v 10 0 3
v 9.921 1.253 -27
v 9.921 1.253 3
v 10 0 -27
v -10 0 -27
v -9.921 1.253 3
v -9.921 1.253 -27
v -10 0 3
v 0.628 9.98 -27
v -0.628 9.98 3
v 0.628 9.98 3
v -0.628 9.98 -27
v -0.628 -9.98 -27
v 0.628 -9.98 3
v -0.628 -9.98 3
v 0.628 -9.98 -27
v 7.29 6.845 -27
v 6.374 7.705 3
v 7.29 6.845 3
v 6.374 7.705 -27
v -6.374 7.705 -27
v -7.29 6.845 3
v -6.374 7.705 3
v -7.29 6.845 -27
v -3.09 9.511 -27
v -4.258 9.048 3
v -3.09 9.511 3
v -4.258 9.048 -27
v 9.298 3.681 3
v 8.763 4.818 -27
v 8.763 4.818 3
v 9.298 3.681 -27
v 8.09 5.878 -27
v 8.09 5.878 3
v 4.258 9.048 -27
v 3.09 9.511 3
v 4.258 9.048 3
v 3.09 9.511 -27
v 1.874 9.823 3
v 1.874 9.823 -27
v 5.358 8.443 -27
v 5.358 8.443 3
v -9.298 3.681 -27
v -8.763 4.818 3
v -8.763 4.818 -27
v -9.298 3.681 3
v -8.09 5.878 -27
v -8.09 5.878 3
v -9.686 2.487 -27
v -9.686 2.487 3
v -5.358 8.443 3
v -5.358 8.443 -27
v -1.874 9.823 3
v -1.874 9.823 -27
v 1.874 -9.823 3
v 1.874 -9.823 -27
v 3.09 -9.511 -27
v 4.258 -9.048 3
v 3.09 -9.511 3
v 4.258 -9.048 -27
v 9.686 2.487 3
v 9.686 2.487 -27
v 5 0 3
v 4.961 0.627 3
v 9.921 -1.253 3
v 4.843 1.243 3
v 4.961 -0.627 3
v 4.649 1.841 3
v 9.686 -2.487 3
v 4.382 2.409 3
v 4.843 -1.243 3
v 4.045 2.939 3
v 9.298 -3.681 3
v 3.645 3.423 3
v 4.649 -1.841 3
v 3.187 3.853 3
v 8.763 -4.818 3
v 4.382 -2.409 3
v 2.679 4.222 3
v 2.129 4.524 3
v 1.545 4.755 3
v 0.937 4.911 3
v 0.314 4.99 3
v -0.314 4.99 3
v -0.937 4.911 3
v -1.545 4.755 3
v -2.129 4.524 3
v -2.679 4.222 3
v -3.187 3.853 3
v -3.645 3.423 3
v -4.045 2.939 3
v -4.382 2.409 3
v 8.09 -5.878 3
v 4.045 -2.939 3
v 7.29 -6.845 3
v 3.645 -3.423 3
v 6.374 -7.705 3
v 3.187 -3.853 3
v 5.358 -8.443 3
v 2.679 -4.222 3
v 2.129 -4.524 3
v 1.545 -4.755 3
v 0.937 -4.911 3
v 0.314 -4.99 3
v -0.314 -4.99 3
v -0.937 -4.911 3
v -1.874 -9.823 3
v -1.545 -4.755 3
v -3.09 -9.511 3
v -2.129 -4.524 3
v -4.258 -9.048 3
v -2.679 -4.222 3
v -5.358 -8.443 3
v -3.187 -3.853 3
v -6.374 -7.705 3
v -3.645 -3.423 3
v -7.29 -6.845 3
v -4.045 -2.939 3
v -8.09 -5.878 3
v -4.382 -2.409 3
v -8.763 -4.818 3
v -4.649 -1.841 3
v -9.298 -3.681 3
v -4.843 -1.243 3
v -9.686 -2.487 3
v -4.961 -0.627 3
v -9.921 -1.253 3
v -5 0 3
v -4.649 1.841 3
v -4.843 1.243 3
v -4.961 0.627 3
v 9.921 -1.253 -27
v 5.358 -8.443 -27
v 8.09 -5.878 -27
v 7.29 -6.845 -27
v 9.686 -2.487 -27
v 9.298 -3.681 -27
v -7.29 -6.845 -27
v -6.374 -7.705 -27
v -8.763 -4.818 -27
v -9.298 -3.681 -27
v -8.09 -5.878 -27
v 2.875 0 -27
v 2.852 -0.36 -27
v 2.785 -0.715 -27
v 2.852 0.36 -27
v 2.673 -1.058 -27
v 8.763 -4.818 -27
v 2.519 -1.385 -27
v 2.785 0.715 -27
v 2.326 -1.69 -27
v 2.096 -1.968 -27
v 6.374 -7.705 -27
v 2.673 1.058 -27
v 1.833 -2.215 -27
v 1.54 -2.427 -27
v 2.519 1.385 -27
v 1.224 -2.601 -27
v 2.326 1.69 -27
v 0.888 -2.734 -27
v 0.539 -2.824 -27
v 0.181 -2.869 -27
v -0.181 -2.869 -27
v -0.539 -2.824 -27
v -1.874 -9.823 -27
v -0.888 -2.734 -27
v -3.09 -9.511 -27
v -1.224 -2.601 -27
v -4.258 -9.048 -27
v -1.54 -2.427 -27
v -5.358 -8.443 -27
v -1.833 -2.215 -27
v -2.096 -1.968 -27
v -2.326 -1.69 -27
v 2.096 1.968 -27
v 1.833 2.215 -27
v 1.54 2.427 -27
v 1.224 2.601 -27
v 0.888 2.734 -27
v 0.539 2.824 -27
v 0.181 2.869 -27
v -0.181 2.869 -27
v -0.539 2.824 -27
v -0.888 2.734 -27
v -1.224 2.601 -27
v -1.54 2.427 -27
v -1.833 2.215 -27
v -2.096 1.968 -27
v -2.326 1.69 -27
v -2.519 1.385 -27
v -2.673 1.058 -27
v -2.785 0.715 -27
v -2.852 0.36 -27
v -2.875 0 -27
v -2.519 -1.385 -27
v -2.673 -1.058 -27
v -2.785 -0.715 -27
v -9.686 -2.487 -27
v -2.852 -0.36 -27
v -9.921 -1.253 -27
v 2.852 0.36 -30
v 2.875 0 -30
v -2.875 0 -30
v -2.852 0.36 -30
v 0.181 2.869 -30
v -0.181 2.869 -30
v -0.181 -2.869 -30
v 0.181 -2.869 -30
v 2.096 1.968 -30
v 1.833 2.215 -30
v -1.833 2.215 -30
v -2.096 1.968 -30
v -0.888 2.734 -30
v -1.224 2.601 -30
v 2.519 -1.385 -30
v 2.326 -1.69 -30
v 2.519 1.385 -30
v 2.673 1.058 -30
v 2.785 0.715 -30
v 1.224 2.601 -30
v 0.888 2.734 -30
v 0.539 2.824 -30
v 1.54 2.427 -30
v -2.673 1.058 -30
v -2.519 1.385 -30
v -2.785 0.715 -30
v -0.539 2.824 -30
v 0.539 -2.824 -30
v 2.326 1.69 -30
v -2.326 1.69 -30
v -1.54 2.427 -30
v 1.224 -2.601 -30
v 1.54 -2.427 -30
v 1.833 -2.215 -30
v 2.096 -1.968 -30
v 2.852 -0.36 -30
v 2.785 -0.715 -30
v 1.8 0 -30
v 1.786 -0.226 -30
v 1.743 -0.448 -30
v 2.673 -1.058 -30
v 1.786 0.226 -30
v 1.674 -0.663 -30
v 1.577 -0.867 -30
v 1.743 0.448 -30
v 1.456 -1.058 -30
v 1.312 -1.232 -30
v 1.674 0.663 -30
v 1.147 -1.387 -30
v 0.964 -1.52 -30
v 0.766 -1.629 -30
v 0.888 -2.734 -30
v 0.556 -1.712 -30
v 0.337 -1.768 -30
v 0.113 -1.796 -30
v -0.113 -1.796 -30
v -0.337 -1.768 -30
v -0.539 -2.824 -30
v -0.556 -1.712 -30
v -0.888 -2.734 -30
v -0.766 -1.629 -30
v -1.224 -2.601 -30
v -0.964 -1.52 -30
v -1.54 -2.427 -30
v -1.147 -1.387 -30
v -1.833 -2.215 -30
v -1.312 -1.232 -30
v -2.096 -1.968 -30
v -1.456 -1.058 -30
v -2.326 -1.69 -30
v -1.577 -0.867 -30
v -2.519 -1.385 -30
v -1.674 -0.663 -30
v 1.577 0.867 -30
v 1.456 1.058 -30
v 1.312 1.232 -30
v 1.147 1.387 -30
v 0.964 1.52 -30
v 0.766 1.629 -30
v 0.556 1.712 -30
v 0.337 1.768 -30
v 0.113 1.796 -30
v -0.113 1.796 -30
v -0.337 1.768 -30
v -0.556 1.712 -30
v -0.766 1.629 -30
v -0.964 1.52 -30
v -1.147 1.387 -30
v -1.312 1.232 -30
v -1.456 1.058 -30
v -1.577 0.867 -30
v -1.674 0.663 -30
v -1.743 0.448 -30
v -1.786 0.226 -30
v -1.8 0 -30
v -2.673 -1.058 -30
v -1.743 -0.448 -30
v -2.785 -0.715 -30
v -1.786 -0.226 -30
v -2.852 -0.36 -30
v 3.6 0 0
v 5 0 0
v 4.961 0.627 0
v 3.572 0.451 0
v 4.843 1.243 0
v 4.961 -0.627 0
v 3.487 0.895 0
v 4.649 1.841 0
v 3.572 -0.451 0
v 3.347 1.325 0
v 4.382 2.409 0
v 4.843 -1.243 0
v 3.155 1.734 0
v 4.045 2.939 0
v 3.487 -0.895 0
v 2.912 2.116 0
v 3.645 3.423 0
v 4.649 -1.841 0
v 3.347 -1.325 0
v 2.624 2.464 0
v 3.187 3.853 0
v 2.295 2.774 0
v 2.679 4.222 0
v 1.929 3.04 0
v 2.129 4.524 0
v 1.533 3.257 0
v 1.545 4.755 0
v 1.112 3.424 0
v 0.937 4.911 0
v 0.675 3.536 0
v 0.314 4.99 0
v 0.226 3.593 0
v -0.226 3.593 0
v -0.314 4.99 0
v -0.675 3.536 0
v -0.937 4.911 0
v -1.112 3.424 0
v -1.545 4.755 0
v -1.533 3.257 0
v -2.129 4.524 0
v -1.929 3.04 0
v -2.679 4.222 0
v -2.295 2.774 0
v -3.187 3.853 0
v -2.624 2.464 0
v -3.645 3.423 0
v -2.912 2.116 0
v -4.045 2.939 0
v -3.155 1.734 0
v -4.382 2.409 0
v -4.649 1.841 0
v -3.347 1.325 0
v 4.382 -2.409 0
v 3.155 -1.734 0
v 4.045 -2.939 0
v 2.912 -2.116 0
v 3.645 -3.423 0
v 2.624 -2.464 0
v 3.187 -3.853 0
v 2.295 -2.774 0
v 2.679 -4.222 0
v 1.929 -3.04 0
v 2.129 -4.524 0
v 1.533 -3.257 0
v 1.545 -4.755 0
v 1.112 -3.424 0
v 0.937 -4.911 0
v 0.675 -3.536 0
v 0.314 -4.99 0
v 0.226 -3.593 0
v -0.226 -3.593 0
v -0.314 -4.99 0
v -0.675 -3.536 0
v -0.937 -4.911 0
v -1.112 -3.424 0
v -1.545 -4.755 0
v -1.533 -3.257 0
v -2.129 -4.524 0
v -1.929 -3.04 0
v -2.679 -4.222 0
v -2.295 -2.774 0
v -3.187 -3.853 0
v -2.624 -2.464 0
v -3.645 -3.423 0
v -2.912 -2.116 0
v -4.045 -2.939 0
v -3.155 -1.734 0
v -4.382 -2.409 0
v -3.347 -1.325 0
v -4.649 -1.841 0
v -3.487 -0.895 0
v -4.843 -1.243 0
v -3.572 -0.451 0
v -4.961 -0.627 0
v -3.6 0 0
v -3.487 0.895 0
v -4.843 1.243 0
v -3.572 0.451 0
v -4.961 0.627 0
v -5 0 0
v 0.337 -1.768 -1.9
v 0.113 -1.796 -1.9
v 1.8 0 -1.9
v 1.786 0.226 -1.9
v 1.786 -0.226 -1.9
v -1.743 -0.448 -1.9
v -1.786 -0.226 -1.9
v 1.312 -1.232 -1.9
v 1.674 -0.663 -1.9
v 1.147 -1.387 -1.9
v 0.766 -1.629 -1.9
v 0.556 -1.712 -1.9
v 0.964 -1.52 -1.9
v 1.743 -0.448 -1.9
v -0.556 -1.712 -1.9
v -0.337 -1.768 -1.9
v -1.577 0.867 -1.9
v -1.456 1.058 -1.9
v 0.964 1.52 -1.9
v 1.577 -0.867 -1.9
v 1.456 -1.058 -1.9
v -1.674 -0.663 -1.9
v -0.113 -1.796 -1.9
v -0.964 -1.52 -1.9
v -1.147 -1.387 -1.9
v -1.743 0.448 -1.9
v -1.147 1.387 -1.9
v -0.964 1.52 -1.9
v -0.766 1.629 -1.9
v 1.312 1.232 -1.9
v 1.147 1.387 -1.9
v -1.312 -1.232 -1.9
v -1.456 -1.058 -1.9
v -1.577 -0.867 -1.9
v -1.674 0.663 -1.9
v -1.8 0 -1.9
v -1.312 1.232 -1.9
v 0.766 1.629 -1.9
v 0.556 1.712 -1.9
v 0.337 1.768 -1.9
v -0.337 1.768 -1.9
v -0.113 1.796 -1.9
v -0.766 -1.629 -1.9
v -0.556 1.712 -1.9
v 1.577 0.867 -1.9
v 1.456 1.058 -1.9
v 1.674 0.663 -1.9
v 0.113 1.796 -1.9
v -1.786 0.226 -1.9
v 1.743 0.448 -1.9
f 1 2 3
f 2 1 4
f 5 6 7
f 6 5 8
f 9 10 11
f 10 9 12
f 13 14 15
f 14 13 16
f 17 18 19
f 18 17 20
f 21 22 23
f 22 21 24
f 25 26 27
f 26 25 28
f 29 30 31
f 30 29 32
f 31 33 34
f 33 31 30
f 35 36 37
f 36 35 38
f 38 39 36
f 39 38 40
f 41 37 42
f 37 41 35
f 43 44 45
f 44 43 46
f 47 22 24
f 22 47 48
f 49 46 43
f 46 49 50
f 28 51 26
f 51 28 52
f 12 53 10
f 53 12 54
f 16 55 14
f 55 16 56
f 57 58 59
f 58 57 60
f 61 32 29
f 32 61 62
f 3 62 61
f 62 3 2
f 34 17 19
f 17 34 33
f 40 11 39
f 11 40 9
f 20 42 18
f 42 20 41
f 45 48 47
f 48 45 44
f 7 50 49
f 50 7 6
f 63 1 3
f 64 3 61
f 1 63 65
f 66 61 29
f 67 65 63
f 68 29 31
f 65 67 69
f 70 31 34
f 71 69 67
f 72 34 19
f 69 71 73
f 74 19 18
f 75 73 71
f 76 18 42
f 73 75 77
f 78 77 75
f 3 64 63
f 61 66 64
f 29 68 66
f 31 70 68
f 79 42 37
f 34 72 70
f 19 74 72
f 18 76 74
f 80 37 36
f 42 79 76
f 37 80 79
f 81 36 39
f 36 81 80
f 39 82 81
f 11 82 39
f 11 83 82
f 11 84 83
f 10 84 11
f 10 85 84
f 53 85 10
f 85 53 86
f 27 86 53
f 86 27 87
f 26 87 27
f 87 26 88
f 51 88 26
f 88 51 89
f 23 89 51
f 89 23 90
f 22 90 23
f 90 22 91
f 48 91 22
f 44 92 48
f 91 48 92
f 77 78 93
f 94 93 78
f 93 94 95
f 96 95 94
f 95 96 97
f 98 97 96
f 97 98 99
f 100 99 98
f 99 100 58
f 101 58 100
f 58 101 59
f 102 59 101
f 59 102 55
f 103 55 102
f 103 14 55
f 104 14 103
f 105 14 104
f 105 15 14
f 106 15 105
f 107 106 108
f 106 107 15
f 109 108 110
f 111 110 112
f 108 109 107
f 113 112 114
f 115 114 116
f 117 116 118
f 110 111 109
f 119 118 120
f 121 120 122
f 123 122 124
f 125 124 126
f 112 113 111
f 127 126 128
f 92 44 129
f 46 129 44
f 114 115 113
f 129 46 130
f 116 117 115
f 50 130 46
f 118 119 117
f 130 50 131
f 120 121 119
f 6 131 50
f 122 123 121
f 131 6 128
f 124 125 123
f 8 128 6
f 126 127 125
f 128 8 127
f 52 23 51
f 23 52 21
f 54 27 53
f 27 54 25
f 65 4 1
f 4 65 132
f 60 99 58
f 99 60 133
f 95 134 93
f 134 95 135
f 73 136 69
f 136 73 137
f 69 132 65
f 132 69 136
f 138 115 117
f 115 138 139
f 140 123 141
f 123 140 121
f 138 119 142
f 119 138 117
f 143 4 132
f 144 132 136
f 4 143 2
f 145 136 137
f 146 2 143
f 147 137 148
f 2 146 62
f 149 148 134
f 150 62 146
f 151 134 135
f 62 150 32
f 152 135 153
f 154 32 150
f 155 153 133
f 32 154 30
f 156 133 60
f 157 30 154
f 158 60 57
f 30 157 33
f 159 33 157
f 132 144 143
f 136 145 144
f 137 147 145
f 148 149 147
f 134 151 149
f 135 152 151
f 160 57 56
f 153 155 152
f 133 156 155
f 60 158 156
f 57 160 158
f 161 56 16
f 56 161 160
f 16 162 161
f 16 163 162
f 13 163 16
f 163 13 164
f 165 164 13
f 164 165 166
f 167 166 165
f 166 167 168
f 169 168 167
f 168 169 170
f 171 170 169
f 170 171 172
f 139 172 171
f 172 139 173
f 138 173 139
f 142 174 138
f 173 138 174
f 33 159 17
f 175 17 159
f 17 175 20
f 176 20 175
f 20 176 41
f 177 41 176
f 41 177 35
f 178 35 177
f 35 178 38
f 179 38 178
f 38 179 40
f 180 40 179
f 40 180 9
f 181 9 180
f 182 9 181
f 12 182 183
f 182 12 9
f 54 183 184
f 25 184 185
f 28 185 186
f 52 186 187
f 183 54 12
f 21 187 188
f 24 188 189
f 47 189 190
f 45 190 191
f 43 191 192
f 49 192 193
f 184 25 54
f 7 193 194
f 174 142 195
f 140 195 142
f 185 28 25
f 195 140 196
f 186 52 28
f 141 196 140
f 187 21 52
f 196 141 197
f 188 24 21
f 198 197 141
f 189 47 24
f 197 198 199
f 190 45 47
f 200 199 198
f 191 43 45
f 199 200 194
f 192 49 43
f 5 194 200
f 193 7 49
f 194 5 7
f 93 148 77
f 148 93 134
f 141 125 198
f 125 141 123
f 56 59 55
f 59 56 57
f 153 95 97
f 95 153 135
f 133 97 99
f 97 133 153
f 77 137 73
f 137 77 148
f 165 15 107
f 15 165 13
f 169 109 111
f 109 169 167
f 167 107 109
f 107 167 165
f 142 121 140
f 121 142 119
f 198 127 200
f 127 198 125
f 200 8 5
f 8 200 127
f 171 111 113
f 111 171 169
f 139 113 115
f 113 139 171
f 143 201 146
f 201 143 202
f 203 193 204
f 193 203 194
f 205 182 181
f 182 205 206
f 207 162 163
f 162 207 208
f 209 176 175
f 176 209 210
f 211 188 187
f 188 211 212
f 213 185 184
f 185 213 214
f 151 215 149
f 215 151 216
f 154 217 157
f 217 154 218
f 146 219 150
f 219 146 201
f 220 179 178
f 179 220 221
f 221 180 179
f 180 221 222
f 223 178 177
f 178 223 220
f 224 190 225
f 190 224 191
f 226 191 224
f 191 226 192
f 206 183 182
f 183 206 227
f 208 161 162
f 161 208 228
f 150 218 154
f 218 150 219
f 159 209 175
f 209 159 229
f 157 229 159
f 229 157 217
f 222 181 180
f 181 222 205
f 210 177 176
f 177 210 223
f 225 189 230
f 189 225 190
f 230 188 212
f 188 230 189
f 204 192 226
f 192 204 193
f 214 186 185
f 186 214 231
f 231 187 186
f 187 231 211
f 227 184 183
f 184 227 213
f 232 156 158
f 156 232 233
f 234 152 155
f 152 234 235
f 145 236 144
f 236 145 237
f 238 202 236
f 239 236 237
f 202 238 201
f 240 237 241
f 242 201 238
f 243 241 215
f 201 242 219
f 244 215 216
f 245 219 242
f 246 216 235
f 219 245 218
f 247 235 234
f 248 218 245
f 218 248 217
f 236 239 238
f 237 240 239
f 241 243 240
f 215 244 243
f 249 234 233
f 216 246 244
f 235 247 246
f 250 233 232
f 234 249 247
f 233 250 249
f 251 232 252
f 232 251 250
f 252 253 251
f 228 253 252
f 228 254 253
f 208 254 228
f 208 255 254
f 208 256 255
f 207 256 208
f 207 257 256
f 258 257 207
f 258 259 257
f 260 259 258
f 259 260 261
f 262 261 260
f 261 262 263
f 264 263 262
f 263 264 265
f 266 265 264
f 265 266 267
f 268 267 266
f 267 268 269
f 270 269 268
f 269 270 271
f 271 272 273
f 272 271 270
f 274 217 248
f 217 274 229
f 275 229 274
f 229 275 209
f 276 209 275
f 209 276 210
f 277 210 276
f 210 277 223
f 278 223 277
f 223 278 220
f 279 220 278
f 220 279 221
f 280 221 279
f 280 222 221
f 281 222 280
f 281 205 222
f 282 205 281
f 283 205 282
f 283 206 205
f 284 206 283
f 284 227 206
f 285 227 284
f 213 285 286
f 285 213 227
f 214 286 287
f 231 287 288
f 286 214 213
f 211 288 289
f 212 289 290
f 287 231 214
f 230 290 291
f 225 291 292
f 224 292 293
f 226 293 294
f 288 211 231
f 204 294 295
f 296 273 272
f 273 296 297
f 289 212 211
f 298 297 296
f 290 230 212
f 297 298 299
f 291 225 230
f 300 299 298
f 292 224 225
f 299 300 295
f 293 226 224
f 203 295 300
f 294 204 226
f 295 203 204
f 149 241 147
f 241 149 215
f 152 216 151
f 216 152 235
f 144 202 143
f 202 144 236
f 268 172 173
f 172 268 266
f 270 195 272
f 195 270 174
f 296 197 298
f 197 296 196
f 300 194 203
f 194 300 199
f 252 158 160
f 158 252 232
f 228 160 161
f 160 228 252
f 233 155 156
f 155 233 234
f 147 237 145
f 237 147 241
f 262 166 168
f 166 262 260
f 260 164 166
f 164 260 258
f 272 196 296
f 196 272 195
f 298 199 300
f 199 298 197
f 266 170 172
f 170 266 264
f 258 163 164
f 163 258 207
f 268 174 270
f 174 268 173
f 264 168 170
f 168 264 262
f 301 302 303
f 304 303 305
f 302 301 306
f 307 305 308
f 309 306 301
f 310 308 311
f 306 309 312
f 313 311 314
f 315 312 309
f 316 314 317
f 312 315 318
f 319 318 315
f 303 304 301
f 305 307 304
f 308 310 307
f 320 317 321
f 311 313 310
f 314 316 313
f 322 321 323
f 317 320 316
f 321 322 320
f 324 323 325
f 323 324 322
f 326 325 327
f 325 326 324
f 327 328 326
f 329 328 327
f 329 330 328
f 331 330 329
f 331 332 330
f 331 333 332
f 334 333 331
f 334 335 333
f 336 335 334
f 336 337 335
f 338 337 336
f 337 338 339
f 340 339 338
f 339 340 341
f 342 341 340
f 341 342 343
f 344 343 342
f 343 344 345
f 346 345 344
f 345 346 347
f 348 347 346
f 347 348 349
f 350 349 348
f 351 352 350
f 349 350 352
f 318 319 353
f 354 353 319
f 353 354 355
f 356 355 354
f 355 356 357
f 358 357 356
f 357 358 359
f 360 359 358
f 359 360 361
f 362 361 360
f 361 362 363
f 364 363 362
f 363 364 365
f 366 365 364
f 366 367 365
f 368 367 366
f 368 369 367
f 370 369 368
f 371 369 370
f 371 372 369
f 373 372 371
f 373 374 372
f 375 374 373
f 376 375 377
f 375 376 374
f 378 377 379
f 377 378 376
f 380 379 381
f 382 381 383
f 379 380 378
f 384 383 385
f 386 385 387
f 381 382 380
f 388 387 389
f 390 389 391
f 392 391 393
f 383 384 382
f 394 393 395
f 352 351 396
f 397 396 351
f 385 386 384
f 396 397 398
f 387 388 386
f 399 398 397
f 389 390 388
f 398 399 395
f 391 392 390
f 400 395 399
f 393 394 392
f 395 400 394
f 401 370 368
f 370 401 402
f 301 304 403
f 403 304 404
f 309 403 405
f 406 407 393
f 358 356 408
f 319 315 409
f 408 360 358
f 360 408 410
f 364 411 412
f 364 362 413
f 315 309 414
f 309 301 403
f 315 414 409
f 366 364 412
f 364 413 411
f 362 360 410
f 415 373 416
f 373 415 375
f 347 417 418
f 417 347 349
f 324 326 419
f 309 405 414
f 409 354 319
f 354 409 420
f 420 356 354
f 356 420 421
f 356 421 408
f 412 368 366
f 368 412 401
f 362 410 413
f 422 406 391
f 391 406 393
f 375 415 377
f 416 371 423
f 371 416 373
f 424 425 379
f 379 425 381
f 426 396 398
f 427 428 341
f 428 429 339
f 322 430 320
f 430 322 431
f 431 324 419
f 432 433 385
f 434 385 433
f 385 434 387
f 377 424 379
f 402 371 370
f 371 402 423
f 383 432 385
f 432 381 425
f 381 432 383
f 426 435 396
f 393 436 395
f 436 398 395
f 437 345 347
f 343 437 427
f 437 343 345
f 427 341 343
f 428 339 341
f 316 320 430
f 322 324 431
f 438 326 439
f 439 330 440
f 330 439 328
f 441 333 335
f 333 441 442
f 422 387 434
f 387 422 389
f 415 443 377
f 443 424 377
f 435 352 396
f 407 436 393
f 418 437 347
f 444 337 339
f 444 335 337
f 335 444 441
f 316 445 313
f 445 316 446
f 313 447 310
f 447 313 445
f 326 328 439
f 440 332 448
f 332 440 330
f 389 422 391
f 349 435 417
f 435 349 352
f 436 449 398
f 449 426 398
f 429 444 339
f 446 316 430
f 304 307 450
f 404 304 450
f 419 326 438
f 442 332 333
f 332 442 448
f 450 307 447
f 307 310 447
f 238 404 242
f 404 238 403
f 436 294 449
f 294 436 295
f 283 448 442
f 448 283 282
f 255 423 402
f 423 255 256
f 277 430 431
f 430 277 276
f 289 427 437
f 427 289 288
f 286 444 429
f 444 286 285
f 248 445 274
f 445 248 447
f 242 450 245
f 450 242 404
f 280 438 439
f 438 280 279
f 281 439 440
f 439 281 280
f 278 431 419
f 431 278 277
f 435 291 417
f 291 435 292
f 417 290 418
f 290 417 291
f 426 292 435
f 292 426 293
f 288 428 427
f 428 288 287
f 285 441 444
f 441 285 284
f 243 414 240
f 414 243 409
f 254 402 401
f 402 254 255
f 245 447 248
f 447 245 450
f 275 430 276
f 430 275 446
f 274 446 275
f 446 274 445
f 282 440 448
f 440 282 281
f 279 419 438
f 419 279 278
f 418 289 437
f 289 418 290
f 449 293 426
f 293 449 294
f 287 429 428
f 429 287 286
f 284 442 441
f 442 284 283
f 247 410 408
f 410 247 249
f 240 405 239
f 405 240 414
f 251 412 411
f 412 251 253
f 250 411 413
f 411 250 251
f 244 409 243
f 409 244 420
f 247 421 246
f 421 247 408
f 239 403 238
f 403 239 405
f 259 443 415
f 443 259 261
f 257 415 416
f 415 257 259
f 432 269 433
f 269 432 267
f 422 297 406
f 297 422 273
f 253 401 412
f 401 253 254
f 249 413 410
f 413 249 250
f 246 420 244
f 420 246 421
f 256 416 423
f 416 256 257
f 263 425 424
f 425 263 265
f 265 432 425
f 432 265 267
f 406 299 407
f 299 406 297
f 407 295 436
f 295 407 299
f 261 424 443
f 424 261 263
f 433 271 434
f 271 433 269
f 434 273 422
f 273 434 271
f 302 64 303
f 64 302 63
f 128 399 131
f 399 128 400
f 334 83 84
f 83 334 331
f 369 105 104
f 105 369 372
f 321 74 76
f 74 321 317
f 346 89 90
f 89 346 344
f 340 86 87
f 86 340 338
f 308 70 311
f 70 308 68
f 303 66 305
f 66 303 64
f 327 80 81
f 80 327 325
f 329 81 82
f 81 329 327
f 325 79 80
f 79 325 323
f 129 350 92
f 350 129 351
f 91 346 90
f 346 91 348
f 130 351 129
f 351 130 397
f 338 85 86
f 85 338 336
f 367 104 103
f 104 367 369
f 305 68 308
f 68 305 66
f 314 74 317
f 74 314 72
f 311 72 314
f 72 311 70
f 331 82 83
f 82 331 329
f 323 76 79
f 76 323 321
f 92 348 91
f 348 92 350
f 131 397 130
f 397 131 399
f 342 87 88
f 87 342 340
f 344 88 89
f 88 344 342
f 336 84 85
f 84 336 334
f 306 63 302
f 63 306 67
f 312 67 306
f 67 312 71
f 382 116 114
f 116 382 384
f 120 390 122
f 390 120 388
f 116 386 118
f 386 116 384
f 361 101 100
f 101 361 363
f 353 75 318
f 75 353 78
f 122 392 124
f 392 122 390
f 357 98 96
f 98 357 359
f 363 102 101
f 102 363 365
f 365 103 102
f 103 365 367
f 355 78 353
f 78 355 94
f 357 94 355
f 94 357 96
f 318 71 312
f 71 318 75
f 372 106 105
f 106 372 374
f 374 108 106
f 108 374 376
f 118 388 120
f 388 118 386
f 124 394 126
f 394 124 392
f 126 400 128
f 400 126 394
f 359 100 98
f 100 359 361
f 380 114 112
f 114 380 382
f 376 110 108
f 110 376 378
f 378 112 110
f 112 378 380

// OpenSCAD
$fn = 50;

difference() {
	union() {
		translate(v = [0, 0, -27.0]) {
			cylinder(h = 30, r = 10.0);
		}
		#translate(v = [0, 0, -30.0]) {
			cylinder(h = 30, r = 2.875);
		}
	}
	union() {
		translate(v = [0, 0, 0]) {
			rotate(a = [0, 0, 0]) {
				difference() {
					union() {
						translate(v = [0, 0, -30.0]) {
							cylinder(h = 30, r = 1.5);
						}
						translate(v = [0, 0, -1.9]) {
							cylinder(h = 1.9, r1 = 1.8, r2 = 3.6);
						}
						translate(v = [0, 0, -30.0]) {
							cylinder(h = 30, r = 1.8);
						}
						translate(v = [0, 0, -30.0]) {
							cylinder(h = 30, r = 1.5);
						}
					}
					union();
				}
			}
		}
		#cylinder(h = 3, r = 5.0);
	}
}
